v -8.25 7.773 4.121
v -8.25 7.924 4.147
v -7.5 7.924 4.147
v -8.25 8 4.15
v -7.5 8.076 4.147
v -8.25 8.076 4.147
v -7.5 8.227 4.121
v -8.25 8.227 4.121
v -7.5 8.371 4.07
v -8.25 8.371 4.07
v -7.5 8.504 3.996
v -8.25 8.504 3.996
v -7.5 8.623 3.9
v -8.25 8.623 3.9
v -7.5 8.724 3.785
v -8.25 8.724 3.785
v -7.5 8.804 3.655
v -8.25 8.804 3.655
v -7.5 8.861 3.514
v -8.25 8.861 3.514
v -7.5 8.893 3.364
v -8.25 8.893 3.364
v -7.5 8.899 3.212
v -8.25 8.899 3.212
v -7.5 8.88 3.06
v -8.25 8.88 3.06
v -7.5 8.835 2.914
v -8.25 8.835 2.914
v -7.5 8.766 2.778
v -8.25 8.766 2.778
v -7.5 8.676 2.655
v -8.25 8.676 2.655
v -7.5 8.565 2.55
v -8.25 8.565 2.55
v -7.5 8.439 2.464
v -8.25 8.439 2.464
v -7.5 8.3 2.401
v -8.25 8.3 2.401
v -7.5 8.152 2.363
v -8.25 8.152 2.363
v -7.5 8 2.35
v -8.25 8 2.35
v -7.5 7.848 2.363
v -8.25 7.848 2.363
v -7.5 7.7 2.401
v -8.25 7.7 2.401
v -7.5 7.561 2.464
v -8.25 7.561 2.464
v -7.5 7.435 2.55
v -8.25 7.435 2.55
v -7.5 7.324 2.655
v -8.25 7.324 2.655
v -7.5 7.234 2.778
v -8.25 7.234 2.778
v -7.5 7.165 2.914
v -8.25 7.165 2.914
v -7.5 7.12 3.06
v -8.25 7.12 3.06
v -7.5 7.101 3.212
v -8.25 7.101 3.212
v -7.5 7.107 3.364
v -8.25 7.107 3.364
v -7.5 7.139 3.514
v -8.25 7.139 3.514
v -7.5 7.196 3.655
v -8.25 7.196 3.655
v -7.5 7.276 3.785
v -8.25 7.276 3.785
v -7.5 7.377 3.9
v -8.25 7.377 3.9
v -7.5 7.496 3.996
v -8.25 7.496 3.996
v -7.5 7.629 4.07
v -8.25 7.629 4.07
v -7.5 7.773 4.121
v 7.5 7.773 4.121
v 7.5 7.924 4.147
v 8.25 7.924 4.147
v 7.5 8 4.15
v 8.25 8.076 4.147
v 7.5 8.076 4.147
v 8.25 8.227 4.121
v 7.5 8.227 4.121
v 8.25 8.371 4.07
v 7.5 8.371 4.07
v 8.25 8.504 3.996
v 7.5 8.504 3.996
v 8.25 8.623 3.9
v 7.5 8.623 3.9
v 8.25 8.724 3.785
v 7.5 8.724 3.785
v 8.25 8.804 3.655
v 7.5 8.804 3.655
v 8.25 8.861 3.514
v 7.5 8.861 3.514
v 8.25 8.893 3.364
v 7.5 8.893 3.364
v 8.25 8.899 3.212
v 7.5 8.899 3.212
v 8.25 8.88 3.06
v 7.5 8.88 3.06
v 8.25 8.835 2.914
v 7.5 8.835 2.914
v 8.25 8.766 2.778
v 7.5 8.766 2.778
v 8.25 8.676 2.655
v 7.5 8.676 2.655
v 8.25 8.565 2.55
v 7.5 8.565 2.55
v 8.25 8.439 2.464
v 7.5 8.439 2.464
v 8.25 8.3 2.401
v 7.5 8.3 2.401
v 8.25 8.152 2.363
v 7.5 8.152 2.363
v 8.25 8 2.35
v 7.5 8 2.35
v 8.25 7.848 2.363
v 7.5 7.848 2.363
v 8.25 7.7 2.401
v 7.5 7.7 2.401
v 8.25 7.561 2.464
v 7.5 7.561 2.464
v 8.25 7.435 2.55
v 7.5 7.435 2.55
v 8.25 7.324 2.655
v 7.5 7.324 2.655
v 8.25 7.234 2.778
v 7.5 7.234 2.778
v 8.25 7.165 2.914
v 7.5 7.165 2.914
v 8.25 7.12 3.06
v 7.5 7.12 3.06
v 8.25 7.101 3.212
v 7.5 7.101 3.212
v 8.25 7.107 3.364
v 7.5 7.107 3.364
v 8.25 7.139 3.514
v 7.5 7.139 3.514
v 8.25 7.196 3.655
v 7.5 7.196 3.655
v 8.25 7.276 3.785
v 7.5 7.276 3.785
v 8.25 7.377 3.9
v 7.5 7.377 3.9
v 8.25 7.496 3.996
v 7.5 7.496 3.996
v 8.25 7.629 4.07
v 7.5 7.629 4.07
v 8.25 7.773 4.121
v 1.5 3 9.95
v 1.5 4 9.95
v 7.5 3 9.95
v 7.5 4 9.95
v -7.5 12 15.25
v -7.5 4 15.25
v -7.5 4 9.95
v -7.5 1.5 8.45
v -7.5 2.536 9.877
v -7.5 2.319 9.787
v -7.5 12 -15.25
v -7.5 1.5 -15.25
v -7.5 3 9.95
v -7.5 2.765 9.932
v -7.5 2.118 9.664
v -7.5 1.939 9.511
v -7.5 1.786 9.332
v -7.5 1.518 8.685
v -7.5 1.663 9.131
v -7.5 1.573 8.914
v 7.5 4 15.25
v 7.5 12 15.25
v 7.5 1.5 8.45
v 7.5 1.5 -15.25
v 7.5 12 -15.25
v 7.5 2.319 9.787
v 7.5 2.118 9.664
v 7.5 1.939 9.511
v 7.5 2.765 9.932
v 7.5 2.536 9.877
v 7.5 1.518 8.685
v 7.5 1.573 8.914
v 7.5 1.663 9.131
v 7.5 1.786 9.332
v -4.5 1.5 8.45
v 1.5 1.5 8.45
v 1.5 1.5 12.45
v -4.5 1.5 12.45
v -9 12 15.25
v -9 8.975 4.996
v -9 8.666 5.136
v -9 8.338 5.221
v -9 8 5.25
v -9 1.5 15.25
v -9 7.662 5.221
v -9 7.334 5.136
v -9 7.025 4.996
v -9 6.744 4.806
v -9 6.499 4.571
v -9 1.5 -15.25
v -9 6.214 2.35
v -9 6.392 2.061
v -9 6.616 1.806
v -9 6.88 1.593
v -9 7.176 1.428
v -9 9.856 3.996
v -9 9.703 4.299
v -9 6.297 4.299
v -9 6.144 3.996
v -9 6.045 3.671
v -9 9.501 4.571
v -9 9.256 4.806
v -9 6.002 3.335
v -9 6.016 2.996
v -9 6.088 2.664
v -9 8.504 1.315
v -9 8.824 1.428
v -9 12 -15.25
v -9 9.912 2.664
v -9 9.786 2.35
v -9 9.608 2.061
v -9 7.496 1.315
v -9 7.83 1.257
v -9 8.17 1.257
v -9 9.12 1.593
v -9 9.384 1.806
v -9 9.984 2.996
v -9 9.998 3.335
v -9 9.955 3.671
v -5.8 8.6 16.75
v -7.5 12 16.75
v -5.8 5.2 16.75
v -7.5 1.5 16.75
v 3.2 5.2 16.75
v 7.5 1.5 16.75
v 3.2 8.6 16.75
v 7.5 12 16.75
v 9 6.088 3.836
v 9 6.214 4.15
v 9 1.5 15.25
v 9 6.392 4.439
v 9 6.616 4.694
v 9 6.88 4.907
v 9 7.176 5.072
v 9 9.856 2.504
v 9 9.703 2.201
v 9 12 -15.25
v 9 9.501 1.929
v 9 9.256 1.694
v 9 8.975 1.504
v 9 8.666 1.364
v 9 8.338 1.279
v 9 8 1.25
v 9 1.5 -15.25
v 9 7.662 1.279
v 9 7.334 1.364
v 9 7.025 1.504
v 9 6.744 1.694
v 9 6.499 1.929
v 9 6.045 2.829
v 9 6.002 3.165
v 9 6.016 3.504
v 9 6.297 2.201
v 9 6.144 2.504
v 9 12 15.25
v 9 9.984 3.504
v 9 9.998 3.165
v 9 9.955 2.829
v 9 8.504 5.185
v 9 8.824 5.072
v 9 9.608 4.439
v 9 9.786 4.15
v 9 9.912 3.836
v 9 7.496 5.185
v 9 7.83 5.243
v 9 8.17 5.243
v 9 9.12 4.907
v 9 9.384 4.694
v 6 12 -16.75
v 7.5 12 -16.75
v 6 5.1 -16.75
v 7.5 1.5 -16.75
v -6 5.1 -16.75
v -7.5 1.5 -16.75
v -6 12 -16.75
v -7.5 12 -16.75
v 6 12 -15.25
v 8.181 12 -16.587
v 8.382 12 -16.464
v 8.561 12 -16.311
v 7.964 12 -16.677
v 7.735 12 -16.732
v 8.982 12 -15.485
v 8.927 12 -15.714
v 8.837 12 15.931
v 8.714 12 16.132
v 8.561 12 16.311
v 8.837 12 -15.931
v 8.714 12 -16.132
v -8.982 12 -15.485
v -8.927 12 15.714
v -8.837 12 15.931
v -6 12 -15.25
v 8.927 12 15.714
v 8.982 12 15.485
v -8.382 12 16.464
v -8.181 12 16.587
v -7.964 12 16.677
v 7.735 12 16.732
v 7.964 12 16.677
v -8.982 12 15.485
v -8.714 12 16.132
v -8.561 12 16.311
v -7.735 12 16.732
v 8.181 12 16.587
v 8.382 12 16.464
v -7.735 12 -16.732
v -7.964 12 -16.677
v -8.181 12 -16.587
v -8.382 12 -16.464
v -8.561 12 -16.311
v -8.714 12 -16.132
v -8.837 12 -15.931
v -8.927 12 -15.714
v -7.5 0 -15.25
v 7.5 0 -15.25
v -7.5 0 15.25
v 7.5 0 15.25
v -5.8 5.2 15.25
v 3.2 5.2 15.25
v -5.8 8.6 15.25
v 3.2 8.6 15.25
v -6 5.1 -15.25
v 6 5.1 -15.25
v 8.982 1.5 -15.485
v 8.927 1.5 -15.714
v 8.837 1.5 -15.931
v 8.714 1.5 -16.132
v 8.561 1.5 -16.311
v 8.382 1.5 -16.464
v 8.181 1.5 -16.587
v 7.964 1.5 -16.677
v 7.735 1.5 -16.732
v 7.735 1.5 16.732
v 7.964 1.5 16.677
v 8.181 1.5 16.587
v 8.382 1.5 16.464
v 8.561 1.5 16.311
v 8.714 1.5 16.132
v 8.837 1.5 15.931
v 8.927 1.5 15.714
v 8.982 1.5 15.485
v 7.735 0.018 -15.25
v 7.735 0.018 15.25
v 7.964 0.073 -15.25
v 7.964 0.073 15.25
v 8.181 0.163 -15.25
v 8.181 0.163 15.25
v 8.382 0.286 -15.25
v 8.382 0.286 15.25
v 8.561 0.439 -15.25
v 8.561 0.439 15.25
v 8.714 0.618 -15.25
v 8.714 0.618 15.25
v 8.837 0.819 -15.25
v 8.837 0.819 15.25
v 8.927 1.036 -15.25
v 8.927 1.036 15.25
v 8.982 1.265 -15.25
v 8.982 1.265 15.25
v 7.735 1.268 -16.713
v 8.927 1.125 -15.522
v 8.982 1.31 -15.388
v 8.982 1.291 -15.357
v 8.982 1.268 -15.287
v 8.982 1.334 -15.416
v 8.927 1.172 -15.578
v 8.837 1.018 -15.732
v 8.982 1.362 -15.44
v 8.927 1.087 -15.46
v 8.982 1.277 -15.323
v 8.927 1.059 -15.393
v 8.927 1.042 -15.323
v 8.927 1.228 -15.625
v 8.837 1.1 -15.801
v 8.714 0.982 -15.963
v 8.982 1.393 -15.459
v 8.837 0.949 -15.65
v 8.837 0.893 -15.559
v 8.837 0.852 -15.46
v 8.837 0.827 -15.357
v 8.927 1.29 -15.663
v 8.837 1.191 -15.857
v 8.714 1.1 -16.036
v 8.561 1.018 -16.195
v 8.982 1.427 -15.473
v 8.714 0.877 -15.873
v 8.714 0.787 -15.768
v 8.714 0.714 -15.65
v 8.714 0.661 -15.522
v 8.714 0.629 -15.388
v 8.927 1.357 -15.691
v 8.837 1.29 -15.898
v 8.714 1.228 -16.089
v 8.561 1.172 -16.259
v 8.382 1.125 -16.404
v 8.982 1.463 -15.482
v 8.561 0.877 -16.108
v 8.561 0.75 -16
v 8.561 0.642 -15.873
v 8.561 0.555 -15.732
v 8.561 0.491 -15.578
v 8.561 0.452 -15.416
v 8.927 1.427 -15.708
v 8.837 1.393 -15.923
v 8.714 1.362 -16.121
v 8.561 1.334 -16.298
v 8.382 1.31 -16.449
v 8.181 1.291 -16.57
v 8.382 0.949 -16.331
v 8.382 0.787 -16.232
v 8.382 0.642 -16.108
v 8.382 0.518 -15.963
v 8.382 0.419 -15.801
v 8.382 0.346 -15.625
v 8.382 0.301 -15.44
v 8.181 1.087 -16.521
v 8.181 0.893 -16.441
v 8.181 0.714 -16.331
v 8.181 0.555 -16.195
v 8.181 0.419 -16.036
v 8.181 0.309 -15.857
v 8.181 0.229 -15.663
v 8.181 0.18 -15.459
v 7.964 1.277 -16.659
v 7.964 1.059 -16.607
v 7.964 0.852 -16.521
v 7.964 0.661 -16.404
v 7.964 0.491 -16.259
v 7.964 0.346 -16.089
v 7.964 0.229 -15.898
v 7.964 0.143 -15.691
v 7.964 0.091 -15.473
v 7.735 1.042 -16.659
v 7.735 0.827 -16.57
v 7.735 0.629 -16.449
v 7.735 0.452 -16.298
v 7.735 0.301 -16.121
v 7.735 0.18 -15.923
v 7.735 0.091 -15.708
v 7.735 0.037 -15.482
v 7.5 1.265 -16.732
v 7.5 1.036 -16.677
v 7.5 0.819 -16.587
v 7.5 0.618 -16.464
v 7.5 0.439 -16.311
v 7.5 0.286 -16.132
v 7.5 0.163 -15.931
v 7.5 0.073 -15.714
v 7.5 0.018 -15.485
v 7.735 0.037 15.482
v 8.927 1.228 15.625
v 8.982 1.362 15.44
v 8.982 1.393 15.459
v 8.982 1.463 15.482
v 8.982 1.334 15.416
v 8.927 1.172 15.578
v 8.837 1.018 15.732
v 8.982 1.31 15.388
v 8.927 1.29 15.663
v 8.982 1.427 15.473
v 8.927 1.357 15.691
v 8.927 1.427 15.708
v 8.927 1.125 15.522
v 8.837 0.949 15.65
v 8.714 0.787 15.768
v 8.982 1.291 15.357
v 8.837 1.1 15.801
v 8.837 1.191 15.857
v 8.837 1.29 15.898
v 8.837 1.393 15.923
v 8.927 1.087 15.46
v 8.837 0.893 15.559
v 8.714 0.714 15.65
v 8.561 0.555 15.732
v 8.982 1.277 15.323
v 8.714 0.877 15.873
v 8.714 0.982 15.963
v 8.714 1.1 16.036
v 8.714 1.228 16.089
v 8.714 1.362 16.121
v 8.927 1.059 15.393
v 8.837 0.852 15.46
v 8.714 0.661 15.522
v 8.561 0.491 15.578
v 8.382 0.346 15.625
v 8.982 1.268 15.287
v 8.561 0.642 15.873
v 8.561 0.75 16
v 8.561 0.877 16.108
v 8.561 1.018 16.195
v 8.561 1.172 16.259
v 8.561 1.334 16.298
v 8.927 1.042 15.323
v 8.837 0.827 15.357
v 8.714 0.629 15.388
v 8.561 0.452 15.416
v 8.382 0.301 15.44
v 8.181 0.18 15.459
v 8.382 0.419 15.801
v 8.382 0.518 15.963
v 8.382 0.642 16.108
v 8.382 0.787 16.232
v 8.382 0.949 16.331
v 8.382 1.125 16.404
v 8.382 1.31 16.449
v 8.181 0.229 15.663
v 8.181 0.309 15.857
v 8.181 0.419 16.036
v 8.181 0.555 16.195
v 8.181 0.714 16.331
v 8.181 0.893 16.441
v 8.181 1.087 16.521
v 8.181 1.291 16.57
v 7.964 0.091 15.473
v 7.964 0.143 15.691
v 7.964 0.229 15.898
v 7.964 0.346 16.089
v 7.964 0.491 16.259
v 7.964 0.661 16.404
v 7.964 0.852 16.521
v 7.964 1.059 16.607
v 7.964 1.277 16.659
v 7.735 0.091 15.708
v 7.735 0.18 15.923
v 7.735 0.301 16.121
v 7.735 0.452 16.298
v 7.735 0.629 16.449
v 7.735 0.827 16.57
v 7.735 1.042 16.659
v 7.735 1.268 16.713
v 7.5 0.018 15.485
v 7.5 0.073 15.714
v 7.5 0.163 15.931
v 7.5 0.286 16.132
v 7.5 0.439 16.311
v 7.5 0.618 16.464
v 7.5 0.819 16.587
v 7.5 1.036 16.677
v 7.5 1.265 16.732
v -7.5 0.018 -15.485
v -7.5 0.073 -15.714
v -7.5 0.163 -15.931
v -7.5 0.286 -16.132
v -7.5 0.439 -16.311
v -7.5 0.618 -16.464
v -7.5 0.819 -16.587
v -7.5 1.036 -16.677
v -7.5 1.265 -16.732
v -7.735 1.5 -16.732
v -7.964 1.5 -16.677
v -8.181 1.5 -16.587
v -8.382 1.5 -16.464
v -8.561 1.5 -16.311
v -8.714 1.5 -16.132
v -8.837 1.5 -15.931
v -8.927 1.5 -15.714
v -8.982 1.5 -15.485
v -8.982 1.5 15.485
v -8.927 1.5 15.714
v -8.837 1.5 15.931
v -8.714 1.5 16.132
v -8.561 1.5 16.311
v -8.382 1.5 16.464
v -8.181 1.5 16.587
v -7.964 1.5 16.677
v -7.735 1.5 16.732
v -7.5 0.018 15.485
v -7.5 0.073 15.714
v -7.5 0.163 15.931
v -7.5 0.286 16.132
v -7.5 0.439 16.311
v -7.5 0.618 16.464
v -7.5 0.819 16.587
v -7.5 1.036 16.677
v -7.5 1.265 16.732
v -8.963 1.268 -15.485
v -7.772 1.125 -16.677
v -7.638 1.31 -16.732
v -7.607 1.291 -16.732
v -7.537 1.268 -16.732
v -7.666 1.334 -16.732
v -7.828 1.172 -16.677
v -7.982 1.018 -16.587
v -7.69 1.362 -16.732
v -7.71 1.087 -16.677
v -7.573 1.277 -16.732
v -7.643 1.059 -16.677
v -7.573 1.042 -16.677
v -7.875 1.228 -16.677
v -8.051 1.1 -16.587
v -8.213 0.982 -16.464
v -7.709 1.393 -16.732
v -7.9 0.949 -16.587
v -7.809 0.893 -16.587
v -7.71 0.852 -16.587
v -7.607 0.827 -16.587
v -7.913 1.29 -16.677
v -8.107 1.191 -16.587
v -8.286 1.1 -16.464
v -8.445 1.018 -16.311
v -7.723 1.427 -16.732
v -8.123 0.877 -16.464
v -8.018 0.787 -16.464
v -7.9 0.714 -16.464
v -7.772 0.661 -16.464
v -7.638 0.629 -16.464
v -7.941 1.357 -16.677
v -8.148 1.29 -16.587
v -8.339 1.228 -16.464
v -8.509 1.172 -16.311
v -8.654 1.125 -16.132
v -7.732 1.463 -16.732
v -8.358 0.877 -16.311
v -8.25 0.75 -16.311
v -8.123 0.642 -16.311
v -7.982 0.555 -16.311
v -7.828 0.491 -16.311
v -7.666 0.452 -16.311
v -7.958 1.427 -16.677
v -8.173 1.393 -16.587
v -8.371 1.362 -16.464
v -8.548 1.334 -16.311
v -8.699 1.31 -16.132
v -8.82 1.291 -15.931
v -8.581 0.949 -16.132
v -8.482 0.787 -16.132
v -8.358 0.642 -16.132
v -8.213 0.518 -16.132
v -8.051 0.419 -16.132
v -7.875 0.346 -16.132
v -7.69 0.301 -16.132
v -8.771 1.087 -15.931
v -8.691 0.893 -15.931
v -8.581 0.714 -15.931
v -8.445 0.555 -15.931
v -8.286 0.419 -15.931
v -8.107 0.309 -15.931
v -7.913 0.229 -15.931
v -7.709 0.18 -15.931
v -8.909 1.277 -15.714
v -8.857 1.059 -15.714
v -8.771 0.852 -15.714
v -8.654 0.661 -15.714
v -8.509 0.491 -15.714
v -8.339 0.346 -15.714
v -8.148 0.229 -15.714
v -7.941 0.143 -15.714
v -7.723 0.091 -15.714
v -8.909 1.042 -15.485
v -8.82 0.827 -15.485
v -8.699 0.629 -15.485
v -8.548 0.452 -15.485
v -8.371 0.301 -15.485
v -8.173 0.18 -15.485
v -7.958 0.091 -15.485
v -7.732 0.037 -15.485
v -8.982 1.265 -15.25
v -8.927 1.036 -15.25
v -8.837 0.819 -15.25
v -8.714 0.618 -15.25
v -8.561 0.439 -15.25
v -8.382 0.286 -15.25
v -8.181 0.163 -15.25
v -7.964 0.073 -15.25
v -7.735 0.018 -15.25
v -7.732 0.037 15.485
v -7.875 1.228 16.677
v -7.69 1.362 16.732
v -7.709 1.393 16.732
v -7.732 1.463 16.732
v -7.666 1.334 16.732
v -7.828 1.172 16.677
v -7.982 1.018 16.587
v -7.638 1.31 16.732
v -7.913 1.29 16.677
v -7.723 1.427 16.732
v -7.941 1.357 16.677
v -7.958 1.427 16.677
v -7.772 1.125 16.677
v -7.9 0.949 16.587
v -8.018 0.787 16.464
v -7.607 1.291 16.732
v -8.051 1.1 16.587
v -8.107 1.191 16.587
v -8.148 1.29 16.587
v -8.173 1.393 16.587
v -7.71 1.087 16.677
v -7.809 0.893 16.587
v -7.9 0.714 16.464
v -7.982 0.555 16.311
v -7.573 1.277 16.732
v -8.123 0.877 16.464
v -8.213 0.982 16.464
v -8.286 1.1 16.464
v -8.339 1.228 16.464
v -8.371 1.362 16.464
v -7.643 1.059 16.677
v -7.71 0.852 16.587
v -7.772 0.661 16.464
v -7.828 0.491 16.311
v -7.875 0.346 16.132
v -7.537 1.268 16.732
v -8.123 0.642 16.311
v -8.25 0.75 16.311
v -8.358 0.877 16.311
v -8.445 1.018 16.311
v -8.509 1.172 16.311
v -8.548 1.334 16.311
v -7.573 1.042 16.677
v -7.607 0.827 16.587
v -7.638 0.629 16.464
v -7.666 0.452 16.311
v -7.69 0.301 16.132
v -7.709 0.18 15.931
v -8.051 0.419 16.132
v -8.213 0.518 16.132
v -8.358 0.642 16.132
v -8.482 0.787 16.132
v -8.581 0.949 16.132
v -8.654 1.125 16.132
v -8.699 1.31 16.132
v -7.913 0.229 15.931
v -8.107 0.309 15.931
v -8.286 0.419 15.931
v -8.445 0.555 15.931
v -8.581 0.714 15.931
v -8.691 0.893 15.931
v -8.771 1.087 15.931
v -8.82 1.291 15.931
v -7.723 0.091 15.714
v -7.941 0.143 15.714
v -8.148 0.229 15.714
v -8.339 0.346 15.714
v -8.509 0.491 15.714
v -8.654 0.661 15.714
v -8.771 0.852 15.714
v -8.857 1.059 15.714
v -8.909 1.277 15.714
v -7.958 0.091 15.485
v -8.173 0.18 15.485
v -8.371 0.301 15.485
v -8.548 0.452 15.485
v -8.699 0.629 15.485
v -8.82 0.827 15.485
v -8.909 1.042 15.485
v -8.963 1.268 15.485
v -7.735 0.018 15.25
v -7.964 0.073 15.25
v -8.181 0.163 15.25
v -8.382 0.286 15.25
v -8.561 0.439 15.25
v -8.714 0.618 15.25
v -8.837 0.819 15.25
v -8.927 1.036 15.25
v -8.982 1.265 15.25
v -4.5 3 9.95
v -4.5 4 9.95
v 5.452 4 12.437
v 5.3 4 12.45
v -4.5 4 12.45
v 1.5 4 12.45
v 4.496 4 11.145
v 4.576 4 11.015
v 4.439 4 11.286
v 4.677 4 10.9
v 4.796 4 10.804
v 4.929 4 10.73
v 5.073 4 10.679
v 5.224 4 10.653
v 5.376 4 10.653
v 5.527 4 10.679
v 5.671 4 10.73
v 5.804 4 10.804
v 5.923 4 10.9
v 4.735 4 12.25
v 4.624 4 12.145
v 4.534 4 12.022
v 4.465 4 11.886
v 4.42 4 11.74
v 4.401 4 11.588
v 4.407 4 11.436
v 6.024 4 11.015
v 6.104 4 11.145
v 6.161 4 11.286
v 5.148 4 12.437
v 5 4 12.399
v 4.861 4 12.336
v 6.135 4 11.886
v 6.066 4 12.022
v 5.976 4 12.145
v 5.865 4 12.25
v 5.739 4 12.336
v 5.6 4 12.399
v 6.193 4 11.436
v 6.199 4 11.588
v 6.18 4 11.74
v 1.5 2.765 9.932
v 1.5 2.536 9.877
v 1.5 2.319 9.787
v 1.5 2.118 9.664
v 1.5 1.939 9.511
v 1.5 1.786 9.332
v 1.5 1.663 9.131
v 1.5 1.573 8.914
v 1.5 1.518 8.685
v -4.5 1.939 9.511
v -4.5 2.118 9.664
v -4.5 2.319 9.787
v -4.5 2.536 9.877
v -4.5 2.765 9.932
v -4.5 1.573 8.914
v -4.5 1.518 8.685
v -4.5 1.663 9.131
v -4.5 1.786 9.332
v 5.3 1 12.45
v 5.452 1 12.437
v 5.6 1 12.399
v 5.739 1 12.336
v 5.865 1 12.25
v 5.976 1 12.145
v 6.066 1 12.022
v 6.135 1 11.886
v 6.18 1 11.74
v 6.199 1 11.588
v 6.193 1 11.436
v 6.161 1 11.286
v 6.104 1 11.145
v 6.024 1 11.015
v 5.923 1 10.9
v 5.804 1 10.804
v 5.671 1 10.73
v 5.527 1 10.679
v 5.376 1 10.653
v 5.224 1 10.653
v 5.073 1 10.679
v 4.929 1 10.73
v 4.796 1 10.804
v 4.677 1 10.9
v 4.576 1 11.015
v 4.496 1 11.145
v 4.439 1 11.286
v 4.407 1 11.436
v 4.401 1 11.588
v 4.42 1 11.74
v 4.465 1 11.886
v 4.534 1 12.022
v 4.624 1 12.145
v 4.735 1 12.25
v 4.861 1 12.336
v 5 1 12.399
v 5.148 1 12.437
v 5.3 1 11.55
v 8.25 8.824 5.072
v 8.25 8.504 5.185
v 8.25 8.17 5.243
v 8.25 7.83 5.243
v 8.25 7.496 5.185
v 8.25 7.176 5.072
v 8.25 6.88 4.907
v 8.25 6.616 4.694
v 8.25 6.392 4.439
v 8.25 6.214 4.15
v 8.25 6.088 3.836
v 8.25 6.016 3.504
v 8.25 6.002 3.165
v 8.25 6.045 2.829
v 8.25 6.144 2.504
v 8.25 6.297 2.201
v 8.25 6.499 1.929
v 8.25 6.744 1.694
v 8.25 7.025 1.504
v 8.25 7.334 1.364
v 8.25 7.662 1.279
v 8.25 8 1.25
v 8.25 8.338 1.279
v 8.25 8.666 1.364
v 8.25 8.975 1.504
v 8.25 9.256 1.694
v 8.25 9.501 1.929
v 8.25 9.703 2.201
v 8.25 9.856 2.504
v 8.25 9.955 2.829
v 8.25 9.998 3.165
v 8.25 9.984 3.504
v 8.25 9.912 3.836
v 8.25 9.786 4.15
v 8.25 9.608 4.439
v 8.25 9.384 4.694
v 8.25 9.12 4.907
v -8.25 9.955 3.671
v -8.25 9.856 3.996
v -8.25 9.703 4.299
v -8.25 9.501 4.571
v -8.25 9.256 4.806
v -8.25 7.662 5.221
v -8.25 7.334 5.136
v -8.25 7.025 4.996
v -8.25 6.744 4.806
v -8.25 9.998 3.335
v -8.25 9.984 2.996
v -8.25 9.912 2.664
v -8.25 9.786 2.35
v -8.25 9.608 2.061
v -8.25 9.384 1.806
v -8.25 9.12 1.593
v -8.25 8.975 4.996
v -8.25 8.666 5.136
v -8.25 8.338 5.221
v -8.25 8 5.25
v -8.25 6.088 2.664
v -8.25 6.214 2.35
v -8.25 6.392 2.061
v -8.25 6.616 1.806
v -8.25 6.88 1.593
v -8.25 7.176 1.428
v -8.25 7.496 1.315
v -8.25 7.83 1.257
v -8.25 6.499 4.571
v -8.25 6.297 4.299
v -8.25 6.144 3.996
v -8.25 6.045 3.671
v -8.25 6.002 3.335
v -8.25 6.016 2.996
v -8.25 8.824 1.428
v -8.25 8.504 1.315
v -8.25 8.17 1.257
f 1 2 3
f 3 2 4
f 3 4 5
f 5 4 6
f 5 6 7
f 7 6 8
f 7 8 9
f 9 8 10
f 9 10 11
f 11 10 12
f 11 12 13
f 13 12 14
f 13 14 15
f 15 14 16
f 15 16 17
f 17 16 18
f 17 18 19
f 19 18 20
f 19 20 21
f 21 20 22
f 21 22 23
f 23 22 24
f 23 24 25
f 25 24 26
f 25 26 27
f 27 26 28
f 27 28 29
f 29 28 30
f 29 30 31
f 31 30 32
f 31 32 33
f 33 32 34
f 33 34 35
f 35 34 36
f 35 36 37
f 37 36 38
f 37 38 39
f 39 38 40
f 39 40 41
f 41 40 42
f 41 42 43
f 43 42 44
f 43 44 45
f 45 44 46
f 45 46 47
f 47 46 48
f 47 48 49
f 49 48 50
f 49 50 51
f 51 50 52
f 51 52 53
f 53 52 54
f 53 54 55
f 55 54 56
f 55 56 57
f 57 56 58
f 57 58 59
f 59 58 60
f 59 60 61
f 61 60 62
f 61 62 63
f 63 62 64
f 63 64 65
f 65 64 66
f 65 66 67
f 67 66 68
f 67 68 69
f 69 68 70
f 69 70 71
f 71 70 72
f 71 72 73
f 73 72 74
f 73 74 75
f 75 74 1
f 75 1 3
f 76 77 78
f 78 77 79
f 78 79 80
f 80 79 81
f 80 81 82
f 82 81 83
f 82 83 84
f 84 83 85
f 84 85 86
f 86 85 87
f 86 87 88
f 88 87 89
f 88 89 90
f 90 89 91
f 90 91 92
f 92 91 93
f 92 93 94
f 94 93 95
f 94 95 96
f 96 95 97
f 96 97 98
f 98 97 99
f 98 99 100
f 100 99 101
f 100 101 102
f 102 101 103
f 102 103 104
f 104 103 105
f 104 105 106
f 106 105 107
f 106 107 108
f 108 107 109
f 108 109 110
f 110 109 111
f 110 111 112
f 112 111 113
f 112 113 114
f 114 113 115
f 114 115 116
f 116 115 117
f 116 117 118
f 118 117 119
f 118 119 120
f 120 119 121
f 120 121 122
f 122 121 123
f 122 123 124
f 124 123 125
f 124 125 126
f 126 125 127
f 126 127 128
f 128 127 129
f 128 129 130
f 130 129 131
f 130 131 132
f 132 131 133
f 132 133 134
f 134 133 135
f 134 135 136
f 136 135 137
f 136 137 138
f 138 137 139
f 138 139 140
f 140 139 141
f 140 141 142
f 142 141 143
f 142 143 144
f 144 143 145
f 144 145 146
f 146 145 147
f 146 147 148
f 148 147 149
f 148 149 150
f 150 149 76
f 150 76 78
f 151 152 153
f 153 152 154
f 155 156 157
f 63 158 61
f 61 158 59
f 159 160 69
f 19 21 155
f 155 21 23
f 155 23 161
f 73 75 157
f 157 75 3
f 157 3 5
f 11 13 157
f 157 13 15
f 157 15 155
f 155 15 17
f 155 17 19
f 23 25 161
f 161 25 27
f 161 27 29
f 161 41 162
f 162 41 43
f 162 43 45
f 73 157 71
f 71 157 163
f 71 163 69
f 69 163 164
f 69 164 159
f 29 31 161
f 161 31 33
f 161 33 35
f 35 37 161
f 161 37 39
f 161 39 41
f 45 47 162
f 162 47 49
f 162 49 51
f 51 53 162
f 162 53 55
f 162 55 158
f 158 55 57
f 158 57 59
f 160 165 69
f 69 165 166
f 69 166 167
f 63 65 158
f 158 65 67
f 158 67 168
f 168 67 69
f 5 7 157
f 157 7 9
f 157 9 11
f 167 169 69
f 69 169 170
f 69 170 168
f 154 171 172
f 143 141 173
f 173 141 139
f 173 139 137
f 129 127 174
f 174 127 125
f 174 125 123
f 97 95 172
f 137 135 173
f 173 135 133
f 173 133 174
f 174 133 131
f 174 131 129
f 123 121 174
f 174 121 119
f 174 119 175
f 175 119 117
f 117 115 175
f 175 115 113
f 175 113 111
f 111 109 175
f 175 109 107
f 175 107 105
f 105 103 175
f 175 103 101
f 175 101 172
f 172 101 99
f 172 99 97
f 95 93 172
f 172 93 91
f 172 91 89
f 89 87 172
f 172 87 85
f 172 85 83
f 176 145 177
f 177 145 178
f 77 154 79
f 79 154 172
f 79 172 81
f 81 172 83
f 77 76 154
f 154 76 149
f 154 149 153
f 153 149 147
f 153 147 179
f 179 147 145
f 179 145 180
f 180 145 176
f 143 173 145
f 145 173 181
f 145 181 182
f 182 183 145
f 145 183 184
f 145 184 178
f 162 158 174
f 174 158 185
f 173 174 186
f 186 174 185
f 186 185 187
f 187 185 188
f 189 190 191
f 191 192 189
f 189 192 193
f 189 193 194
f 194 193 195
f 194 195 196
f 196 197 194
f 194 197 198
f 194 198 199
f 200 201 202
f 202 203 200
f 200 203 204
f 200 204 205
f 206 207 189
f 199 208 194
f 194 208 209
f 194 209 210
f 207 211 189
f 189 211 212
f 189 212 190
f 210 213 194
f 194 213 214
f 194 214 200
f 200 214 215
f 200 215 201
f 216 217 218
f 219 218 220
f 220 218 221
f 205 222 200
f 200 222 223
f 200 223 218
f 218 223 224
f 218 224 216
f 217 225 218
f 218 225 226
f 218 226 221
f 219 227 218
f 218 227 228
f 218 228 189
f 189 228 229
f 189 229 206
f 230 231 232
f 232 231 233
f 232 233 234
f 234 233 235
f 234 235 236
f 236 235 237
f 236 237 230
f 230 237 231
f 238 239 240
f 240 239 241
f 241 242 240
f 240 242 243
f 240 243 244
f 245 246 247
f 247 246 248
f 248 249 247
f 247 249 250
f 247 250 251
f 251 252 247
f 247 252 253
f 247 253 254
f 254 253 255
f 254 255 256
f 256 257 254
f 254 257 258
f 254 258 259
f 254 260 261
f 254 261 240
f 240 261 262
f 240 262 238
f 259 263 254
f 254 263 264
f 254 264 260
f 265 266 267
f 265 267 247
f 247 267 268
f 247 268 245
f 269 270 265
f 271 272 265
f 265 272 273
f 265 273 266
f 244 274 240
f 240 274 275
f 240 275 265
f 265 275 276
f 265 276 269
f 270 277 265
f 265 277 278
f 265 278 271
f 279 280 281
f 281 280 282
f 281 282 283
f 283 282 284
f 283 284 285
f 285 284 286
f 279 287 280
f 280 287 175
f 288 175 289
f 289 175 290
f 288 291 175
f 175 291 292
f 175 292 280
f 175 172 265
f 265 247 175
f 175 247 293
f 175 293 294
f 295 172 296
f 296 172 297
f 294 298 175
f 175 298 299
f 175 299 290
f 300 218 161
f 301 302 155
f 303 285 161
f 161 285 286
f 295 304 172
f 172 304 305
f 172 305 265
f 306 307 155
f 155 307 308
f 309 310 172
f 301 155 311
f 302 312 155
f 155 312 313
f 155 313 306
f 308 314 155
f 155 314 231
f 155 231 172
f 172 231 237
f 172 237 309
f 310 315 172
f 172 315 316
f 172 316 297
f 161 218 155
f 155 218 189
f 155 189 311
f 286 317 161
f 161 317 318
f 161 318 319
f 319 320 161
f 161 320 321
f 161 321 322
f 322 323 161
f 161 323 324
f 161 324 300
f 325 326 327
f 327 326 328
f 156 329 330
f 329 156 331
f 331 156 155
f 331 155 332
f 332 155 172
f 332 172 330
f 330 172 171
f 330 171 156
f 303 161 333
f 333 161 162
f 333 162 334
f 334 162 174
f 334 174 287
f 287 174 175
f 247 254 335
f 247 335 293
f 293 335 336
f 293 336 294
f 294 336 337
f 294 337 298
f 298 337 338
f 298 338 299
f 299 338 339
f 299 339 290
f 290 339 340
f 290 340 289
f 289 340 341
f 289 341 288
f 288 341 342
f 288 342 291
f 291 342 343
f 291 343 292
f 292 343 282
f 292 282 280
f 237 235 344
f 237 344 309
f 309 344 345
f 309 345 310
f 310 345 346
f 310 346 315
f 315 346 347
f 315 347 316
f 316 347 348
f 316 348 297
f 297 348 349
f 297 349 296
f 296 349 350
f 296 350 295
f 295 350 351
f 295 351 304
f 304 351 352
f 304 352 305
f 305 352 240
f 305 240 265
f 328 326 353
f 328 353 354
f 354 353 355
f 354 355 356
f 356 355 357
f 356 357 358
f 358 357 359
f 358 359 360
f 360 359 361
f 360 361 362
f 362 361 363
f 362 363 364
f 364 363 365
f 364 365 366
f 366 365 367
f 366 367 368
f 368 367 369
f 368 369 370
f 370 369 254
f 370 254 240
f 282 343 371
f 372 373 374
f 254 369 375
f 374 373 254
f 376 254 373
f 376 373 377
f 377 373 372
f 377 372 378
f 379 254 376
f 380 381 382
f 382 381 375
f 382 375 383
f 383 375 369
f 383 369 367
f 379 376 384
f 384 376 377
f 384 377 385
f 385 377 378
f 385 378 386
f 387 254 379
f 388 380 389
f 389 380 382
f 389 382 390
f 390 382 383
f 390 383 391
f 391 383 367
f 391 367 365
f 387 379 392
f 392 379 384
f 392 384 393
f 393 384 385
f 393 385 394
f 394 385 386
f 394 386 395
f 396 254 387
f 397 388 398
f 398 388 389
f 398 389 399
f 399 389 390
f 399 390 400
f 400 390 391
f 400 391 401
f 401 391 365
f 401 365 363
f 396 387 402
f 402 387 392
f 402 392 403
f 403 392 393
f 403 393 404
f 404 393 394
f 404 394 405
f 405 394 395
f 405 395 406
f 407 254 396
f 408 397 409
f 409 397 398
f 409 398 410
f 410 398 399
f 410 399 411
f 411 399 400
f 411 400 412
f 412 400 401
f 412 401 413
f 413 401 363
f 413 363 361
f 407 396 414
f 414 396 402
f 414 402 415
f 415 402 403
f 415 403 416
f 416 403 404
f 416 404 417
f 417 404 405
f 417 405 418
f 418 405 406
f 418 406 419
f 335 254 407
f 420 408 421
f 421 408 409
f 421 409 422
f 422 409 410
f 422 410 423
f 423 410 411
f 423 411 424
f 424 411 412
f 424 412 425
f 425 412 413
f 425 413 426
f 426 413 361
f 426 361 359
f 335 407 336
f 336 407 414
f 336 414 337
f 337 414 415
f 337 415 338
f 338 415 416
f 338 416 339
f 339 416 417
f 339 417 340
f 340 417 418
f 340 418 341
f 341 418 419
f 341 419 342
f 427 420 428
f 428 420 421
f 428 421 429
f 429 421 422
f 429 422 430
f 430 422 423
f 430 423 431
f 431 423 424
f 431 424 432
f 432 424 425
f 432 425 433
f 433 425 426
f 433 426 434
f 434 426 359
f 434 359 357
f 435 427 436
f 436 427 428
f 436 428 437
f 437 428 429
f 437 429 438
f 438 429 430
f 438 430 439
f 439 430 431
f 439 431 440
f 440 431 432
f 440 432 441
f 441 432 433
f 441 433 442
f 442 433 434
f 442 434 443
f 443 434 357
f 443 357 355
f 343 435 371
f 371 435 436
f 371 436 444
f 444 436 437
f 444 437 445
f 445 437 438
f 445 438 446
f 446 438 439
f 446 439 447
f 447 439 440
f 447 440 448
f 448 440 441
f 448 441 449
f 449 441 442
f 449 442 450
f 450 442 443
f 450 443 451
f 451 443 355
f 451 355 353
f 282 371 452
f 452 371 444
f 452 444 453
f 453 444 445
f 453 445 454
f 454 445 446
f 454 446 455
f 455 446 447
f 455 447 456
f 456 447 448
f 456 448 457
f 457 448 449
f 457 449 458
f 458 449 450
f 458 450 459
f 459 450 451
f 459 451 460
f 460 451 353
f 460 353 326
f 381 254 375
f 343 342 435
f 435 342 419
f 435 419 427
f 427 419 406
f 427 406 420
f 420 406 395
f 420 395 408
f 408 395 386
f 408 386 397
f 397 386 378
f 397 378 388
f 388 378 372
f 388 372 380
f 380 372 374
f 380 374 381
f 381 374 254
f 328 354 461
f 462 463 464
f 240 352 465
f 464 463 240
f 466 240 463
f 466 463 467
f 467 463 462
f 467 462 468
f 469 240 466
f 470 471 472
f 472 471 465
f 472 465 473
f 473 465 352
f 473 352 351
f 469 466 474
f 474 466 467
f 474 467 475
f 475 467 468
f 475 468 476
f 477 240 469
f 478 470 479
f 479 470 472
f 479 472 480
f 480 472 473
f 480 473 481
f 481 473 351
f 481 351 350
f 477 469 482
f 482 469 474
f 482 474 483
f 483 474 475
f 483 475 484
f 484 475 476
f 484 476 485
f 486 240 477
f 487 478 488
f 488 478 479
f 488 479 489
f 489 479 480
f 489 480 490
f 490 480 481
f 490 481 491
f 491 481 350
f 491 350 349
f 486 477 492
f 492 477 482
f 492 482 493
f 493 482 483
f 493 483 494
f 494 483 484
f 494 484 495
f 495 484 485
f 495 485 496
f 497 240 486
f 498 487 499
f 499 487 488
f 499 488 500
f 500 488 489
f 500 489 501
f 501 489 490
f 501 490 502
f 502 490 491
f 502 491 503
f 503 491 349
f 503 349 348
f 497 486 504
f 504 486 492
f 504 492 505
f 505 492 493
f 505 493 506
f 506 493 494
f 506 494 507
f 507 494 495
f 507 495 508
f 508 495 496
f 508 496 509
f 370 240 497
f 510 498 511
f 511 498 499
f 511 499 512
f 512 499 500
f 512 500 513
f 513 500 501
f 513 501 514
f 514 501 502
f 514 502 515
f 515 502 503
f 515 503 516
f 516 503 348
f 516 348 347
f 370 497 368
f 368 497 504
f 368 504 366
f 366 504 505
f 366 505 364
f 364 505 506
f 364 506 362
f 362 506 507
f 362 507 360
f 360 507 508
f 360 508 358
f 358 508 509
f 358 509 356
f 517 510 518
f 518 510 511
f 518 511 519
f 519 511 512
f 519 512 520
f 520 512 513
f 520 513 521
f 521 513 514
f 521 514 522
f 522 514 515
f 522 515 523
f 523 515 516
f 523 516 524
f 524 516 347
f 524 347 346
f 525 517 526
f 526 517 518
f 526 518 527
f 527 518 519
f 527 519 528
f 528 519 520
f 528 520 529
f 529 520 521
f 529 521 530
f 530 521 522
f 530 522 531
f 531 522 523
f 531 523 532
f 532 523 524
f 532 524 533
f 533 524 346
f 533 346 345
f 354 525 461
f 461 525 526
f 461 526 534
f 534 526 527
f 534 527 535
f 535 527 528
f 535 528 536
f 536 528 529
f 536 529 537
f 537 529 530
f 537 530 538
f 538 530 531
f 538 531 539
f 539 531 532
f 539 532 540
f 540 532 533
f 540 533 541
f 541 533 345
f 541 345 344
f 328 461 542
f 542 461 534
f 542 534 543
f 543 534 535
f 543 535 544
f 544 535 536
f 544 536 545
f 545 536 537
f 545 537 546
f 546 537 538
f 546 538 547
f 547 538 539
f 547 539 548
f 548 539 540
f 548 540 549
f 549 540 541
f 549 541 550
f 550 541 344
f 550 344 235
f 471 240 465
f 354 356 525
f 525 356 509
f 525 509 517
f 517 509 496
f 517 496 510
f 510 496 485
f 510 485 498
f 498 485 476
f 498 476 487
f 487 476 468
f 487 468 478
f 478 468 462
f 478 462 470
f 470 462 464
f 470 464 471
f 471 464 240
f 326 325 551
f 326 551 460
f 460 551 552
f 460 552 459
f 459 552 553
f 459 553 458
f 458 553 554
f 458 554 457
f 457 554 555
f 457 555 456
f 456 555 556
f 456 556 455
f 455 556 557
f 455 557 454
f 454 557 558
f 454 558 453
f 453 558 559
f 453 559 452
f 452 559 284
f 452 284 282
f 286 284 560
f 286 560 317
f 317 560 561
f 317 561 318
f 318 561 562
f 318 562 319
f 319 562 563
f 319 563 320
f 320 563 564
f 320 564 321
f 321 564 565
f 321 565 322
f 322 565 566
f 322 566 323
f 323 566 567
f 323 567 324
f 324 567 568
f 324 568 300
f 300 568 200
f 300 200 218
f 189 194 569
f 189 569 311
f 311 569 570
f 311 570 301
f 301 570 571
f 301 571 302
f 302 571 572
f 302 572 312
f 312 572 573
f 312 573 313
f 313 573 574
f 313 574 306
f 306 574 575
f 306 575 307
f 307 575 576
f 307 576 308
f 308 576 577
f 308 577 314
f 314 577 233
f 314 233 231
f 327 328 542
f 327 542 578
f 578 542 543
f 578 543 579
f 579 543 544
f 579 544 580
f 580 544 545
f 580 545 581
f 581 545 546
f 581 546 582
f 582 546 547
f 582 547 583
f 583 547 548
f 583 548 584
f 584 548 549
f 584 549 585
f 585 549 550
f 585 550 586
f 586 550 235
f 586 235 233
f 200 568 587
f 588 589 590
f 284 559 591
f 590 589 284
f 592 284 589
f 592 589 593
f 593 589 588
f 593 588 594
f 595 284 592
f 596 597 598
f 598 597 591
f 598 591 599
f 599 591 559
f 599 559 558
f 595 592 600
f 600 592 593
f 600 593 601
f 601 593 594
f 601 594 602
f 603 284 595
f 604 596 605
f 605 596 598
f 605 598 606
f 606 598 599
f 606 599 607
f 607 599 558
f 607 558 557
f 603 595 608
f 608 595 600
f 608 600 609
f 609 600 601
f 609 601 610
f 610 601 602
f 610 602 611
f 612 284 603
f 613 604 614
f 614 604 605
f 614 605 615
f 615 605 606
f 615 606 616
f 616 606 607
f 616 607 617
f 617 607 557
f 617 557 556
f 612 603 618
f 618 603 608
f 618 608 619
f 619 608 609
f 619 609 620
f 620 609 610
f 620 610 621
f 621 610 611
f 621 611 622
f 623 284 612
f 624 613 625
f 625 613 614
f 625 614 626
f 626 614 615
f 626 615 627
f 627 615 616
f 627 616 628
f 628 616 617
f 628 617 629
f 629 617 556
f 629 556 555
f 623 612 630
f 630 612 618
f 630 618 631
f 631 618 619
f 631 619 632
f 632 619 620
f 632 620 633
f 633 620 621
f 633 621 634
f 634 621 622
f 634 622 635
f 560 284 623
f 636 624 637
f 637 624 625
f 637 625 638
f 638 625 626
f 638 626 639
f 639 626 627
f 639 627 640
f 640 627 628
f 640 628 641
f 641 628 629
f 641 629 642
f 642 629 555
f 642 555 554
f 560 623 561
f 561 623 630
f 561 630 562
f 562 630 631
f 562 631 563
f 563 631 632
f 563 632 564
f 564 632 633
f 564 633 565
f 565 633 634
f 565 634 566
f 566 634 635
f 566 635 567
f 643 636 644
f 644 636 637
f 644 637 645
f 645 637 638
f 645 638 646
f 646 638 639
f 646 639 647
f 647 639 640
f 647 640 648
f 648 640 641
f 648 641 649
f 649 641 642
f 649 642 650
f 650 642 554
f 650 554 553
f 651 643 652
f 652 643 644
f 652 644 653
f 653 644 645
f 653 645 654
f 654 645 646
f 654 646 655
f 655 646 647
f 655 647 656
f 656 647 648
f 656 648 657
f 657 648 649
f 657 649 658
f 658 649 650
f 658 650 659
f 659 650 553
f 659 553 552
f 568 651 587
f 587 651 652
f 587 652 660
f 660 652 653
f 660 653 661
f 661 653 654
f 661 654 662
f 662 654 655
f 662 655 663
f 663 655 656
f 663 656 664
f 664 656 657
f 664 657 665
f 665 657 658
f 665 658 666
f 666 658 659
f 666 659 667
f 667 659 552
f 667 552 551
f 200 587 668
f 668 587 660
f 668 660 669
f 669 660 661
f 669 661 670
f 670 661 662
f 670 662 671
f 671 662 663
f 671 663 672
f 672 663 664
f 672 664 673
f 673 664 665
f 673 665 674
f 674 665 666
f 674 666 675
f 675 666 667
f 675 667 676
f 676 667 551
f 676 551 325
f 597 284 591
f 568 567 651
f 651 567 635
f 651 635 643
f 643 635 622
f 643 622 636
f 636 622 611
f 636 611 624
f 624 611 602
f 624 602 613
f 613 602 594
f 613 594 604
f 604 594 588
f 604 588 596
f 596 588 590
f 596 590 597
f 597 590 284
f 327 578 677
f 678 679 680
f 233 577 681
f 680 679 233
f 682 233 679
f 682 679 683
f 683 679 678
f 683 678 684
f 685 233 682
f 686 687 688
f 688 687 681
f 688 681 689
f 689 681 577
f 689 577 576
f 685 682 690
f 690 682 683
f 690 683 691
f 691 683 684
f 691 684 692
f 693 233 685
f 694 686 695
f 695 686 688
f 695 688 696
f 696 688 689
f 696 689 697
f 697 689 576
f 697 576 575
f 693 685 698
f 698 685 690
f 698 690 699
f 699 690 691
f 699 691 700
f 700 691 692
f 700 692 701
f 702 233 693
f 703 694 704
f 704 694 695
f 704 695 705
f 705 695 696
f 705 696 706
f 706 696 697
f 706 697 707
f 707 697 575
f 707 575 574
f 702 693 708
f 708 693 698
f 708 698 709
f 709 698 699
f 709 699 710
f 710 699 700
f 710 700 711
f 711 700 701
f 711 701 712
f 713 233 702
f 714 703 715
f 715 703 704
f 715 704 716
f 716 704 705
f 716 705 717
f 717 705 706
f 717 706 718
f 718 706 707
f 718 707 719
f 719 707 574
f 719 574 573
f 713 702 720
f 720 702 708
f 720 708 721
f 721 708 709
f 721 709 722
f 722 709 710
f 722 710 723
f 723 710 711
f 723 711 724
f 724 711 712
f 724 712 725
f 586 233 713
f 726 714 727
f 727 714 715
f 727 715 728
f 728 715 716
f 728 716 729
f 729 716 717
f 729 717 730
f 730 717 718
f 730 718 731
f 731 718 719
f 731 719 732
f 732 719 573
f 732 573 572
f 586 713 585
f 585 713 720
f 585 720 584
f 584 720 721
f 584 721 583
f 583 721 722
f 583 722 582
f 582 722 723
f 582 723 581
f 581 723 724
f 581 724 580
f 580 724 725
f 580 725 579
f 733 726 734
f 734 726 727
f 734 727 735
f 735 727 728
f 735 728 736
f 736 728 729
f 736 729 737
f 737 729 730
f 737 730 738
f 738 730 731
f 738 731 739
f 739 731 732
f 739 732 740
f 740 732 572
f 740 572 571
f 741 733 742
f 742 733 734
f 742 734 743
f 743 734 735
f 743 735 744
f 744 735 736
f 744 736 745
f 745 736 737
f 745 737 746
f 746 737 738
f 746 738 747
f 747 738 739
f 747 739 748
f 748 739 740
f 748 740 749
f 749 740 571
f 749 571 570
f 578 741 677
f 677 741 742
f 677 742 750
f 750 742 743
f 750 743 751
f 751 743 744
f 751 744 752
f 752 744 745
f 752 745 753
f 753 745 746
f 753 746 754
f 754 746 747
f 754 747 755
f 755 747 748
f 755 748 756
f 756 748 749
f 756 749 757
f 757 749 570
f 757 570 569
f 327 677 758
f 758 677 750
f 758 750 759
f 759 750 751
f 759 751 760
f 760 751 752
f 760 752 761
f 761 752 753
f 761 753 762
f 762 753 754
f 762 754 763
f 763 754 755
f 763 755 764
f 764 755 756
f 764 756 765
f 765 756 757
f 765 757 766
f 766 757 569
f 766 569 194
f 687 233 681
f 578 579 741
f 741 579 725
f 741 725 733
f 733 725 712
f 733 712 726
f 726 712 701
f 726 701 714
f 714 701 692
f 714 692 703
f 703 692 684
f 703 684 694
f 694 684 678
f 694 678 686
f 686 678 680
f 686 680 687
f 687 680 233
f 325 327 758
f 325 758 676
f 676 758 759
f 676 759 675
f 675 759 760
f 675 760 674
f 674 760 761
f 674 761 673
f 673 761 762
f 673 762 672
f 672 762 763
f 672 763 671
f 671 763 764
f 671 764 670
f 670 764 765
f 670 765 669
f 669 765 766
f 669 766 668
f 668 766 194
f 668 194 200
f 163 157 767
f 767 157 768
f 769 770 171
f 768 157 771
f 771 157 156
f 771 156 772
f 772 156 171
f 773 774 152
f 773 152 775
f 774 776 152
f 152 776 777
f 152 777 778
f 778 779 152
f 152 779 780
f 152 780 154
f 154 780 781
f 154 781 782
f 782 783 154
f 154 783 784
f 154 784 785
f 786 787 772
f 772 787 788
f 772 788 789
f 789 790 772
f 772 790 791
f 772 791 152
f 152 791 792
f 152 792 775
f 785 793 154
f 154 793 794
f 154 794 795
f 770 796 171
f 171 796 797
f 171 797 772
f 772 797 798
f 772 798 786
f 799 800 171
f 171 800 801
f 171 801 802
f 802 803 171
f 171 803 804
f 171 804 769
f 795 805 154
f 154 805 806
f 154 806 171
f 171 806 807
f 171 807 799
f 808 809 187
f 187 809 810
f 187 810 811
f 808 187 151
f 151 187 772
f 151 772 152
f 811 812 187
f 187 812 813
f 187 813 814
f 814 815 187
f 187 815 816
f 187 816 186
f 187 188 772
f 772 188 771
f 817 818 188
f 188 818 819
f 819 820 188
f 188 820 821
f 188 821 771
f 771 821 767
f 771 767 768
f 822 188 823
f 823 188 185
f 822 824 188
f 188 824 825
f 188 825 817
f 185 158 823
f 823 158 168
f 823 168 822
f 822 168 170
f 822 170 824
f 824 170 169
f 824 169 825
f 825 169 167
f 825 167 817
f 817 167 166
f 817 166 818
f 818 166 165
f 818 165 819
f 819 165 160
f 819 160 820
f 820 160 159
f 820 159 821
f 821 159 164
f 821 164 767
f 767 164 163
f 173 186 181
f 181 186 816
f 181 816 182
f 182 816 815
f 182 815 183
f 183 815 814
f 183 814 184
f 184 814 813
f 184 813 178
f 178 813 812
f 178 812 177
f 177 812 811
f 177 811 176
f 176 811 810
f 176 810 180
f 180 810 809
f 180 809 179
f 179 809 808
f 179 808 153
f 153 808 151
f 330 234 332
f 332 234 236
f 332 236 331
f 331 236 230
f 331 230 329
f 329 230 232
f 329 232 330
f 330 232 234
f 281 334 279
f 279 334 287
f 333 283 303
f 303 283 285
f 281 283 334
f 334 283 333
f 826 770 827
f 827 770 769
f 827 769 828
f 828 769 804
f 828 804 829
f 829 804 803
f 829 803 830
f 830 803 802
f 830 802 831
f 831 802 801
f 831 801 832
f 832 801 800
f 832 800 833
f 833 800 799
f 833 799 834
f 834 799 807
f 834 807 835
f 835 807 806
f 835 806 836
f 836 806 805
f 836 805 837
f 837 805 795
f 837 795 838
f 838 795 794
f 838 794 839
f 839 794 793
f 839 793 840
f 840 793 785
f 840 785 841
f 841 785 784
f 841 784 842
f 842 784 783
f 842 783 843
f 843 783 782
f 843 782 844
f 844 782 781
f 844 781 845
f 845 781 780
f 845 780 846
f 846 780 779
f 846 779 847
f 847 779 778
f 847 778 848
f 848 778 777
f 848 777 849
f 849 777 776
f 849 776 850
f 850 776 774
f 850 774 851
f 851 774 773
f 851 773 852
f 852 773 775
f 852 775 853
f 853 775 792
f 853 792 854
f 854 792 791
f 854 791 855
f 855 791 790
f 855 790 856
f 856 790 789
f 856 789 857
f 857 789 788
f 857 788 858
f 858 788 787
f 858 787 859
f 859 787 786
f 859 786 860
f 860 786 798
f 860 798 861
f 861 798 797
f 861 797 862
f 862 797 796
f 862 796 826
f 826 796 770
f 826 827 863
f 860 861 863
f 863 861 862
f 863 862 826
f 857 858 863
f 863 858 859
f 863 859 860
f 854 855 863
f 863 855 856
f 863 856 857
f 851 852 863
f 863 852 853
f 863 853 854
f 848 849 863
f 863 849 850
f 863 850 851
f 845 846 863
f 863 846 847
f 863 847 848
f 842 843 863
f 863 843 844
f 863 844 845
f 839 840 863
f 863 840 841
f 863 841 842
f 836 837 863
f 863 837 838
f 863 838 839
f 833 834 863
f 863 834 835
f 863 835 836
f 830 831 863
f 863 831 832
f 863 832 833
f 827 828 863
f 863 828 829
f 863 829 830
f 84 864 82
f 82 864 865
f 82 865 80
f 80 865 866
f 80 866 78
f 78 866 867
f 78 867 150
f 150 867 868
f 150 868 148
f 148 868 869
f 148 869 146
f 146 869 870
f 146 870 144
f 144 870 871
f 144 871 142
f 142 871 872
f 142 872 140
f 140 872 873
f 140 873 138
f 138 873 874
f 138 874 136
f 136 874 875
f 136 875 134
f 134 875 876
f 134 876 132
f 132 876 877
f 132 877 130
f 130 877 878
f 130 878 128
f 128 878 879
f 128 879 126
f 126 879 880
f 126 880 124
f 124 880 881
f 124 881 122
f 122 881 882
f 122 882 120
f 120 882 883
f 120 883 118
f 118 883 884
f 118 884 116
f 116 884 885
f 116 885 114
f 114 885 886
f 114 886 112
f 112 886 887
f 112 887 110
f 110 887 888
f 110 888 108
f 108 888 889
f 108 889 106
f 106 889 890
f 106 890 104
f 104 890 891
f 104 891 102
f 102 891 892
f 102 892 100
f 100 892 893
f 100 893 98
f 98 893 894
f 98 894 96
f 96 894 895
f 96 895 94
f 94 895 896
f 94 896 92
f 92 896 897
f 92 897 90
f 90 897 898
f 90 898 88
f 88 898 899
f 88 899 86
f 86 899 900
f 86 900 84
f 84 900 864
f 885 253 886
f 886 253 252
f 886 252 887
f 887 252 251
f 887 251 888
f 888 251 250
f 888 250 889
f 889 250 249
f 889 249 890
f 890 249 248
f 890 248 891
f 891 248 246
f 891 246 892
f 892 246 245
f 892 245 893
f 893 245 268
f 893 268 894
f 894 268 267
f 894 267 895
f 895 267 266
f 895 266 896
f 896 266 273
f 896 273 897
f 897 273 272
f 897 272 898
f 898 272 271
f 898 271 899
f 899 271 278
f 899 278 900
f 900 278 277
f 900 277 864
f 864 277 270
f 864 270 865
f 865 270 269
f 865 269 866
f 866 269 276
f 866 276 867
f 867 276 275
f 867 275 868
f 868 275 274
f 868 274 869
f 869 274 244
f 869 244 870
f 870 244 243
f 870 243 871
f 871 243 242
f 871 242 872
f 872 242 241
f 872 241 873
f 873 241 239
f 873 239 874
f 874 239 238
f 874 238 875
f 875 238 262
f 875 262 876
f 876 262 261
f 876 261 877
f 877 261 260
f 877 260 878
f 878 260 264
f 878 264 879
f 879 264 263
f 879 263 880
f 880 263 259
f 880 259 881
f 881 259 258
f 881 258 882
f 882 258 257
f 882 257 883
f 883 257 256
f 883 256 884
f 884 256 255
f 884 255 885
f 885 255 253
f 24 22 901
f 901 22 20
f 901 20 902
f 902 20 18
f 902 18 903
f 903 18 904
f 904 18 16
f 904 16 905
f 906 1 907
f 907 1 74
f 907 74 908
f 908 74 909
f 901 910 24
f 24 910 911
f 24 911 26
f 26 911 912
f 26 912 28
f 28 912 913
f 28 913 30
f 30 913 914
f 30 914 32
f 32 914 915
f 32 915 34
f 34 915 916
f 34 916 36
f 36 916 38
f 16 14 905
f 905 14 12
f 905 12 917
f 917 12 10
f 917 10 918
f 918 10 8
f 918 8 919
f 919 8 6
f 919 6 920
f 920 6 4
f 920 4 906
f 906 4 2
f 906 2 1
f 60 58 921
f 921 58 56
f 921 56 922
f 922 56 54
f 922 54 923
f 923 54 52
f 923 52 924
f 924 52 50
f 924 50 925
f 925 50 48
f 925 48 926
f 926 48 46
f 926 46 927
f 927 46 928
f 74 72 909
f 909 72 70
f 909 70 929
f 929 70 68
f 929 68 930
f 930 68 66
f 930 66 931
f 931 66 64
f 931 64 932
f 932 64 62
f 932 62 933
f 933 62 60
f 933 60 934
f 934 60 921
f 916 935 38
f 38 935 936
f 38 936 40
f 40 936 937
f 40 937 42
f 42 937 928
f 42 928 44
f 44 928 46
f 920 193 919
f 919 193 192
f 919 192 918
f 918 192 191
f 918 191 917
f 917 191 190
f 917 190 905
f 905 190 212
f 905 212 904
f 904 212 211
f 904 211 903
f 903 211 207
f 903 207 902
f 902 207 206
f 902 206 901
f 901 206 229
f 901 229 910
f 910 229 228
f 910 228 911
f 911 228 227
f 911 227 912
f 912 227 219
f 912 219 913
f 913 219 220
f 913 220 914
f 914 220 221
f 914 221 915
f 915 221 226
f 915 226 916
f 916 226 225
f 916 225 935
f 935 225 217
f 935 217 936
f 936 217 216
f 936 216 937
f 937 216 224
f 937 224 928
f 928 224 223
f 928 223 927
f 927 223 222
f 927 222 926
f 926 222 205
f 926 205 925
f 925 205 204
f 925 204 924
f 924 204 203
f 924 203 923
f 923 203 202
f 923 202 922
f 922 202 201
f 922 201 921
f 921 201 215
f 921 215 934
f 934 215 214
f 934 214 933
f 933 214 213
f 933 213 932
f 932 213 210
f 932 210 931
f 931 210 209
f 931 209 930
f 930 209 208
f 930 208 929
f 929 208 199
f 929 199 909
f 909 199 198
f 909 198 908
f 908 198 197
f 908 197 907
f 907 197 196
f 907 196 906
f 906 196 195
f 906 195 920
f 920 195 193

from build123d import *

# Parameters (mm, degrees)
SKETCH_1_W          = 18
SKETCH_1_H          = 33.5
EXTRUDE_1_DEPTH     = 12
SHELL_1_T           = -1.5
FILLET_1_R          = 1.5
SKETCH_2_W          = 15
SKETCH_2_H          = 5.3
EXTRUDE_2_DEPTH     = 2.5
SKETCH_4_W          = 6
SKETCH_4_H          = 2.5
CUT_EXTRUDE_1_DEPTH = 2.5
FILLET_3_R          = 1.5
SKETCH_5_W          = 9
SKETCH_5_H          = 3.4
CUT_EXTRUDE_2_DEPTH = 2.5
SKETCH_6_W          = 12
SKETCH_6_H          = 8
CUT_EXTRUDE_3_DEPTH = 2.5
SKETCH_7_R          = 0.9
CUT_EXTRUDE_4_DEPTH = 3
SKETCH_8_R          = 0.9
CUT_EXTRUDE_5_DEPTH = 23.5
SKETCH_10_R         = 2
CUT_EXTRUDE_7_DEPTH = 0.75
CUT_EXTRUDE_START   = -0.75
SKETCH_11_R         = 2
CUT_EXTRUDE_8_DEPTH = 0.75


with BuildPart() as part:
    # 草图1 → 凸台-拉伸1 (new body)
    with BuildSketch(Plane(origin=(0, 0, 0), x_dir=(1, 0, 0), z_dir=(0, 1, 0))):
        Rectangle(SKETCH_1_W, SKETCH_1_H)
    extrude(amount=EXTRUDE_1_DEPTH)

    # 抽壳1
    shell_1_openings = [part.faces().sort_by_distance(p)[0] for p in [
        (0, 12, 0),
    ]]
    offset(amount=SHELL_1_T, openings=shell_1_openings, kind=Kind.INTERSECTION)

    # 圆角1
    fillet_1_edges = [part.edges().sort_by_distance(p)[0] for p in [
        (0, 0, -16.75),
        (9, 0, 0),
        (0, 0, 16.75),
        (-9, 0, 0),
        (-9, 6, -16.75),
        (9, 6, -16.75),
        (9, 6, 16.75),
        (-9, 6, 16.75),
    ]]
    fillet(fillet_1_edges, radius=FILLET_1_R)

    # 草图2 → 凸台-拉伸2 (add)
    with BuildSketch(Plane(origin=(0, 1.5, 0), x_dir=(1, 0, 0), z_dir=(0, 1, 0))):
        with Locations((0, -12.6)):
            Rectangle(SKETCH_2_W, SKETCH_2_H)
    extrude(amount=EXTRUDE_2_DEPTH)

    # 草图4 → 切除-拉伸1 (cut)
    with BuildSketch(Plane(origin=(0, 4, 0), x_dir=(1, 0, 0), z_dir=(0, 1, 0))):
        with Locations((-1.5, -11.2)):
            Rectangle(SKETCH_4_W, SKETCH_4_H)
    extrude(amount=-CUT_EXTRUDE_1_DEPTH, mode=Mode.SUBTRACT)

    # 圆角3
    fillet_3_edges = [part.edges().sort_by_distance(p)[0] for p in [
        (4.5, 1.5, 9.95),
        (-6, 1.5, 9.95),
    ]]
    fillet(fillet_3_edges, radius=FILLET_3_R)

    # 草图5 → 切除-拉伸2 (cut)
    with BuildSketch(Plane(origin=(0, 0, 15.25), x_dir=(-1, 0, 0), z_dir=(0, 0, -1))):
        with Locations((1.3, 6.9)):
            Rectangle(SKETCH_5_W, SKETCH_5_H)
    extrude(amount=-CUT_EXTRUDE_2_DEPTH, mode=Mode.SUBTRACT)

    # 草图6 → 切除-拉伸3 (cut)
    with BuildSketch(Plane(origin=(0, 0, -16.75), x_dir=(-1, 0, 0), z_dir=(0, 0, -1))):
        with Locations((0, 9.1)):
            Rectangle(SKETCH_6_W, SKETCH_6_H)
    extrude(amount=-CUT_EXTRUDE_3_DEPTH, mode=Mode.SUBTRACT)

    # 草图7 → 切除-拉伸4 (cut)
    with BuildSketch(Plane(origin=(0, 4, 0), x_dir=(1, 0, 0), z_dir=(0, 1, 0))):
        with Locations(Location((5.3, -11.55, 0), (0, 0, 270))):
            Circle(SKETCH_7_R)
    extrude(amount=-CUT_EXTRUDE_4_DEPTH, mode=Mode.SUBTRACT)

    # 草图8 → 切除-拉伸5 (cut)
    with BuildSketch(Plane(origin=(9, 0, 0), x_dir=(0, 0, -1), z_dir=(1, 0, 0))):
        with Locations((-3.25, 8)):
            Circle(SKETCH_8_R)
    extrude(amount=-CUT_EXTRUDE_5_DEPTH, mode=Mode.SUBTRACT)

    # 草图10 → 切除-拉伸7 (cut)
    with BuildSketch(Plane(origin=(9, 0, 0), x_dir=(0, 0, -1), z_dir=(1, 0, 0))):
        with Locations((-3.25, 8)):
            Circle(SKETCH_10_R)
    extrude(amount=-CUT_EXTRUDE_7_DEPTH, mode=Mode.SUBTRACT)

    # 草图11 → 切除-拉伸8 (cut)
    with BuildSketch(Plane.ZY.offset(9).offset(CUT_EXTRUDE_START)):
        with Locations(Location((3.25, 8, 0), (0, 0, 180))):
            Circle(SKETCH_11_R)
    extrude(amount=CUT_EXTRUDE_8_DEPTH, mode=Mode.SUBTRACT)


solid = part.part
